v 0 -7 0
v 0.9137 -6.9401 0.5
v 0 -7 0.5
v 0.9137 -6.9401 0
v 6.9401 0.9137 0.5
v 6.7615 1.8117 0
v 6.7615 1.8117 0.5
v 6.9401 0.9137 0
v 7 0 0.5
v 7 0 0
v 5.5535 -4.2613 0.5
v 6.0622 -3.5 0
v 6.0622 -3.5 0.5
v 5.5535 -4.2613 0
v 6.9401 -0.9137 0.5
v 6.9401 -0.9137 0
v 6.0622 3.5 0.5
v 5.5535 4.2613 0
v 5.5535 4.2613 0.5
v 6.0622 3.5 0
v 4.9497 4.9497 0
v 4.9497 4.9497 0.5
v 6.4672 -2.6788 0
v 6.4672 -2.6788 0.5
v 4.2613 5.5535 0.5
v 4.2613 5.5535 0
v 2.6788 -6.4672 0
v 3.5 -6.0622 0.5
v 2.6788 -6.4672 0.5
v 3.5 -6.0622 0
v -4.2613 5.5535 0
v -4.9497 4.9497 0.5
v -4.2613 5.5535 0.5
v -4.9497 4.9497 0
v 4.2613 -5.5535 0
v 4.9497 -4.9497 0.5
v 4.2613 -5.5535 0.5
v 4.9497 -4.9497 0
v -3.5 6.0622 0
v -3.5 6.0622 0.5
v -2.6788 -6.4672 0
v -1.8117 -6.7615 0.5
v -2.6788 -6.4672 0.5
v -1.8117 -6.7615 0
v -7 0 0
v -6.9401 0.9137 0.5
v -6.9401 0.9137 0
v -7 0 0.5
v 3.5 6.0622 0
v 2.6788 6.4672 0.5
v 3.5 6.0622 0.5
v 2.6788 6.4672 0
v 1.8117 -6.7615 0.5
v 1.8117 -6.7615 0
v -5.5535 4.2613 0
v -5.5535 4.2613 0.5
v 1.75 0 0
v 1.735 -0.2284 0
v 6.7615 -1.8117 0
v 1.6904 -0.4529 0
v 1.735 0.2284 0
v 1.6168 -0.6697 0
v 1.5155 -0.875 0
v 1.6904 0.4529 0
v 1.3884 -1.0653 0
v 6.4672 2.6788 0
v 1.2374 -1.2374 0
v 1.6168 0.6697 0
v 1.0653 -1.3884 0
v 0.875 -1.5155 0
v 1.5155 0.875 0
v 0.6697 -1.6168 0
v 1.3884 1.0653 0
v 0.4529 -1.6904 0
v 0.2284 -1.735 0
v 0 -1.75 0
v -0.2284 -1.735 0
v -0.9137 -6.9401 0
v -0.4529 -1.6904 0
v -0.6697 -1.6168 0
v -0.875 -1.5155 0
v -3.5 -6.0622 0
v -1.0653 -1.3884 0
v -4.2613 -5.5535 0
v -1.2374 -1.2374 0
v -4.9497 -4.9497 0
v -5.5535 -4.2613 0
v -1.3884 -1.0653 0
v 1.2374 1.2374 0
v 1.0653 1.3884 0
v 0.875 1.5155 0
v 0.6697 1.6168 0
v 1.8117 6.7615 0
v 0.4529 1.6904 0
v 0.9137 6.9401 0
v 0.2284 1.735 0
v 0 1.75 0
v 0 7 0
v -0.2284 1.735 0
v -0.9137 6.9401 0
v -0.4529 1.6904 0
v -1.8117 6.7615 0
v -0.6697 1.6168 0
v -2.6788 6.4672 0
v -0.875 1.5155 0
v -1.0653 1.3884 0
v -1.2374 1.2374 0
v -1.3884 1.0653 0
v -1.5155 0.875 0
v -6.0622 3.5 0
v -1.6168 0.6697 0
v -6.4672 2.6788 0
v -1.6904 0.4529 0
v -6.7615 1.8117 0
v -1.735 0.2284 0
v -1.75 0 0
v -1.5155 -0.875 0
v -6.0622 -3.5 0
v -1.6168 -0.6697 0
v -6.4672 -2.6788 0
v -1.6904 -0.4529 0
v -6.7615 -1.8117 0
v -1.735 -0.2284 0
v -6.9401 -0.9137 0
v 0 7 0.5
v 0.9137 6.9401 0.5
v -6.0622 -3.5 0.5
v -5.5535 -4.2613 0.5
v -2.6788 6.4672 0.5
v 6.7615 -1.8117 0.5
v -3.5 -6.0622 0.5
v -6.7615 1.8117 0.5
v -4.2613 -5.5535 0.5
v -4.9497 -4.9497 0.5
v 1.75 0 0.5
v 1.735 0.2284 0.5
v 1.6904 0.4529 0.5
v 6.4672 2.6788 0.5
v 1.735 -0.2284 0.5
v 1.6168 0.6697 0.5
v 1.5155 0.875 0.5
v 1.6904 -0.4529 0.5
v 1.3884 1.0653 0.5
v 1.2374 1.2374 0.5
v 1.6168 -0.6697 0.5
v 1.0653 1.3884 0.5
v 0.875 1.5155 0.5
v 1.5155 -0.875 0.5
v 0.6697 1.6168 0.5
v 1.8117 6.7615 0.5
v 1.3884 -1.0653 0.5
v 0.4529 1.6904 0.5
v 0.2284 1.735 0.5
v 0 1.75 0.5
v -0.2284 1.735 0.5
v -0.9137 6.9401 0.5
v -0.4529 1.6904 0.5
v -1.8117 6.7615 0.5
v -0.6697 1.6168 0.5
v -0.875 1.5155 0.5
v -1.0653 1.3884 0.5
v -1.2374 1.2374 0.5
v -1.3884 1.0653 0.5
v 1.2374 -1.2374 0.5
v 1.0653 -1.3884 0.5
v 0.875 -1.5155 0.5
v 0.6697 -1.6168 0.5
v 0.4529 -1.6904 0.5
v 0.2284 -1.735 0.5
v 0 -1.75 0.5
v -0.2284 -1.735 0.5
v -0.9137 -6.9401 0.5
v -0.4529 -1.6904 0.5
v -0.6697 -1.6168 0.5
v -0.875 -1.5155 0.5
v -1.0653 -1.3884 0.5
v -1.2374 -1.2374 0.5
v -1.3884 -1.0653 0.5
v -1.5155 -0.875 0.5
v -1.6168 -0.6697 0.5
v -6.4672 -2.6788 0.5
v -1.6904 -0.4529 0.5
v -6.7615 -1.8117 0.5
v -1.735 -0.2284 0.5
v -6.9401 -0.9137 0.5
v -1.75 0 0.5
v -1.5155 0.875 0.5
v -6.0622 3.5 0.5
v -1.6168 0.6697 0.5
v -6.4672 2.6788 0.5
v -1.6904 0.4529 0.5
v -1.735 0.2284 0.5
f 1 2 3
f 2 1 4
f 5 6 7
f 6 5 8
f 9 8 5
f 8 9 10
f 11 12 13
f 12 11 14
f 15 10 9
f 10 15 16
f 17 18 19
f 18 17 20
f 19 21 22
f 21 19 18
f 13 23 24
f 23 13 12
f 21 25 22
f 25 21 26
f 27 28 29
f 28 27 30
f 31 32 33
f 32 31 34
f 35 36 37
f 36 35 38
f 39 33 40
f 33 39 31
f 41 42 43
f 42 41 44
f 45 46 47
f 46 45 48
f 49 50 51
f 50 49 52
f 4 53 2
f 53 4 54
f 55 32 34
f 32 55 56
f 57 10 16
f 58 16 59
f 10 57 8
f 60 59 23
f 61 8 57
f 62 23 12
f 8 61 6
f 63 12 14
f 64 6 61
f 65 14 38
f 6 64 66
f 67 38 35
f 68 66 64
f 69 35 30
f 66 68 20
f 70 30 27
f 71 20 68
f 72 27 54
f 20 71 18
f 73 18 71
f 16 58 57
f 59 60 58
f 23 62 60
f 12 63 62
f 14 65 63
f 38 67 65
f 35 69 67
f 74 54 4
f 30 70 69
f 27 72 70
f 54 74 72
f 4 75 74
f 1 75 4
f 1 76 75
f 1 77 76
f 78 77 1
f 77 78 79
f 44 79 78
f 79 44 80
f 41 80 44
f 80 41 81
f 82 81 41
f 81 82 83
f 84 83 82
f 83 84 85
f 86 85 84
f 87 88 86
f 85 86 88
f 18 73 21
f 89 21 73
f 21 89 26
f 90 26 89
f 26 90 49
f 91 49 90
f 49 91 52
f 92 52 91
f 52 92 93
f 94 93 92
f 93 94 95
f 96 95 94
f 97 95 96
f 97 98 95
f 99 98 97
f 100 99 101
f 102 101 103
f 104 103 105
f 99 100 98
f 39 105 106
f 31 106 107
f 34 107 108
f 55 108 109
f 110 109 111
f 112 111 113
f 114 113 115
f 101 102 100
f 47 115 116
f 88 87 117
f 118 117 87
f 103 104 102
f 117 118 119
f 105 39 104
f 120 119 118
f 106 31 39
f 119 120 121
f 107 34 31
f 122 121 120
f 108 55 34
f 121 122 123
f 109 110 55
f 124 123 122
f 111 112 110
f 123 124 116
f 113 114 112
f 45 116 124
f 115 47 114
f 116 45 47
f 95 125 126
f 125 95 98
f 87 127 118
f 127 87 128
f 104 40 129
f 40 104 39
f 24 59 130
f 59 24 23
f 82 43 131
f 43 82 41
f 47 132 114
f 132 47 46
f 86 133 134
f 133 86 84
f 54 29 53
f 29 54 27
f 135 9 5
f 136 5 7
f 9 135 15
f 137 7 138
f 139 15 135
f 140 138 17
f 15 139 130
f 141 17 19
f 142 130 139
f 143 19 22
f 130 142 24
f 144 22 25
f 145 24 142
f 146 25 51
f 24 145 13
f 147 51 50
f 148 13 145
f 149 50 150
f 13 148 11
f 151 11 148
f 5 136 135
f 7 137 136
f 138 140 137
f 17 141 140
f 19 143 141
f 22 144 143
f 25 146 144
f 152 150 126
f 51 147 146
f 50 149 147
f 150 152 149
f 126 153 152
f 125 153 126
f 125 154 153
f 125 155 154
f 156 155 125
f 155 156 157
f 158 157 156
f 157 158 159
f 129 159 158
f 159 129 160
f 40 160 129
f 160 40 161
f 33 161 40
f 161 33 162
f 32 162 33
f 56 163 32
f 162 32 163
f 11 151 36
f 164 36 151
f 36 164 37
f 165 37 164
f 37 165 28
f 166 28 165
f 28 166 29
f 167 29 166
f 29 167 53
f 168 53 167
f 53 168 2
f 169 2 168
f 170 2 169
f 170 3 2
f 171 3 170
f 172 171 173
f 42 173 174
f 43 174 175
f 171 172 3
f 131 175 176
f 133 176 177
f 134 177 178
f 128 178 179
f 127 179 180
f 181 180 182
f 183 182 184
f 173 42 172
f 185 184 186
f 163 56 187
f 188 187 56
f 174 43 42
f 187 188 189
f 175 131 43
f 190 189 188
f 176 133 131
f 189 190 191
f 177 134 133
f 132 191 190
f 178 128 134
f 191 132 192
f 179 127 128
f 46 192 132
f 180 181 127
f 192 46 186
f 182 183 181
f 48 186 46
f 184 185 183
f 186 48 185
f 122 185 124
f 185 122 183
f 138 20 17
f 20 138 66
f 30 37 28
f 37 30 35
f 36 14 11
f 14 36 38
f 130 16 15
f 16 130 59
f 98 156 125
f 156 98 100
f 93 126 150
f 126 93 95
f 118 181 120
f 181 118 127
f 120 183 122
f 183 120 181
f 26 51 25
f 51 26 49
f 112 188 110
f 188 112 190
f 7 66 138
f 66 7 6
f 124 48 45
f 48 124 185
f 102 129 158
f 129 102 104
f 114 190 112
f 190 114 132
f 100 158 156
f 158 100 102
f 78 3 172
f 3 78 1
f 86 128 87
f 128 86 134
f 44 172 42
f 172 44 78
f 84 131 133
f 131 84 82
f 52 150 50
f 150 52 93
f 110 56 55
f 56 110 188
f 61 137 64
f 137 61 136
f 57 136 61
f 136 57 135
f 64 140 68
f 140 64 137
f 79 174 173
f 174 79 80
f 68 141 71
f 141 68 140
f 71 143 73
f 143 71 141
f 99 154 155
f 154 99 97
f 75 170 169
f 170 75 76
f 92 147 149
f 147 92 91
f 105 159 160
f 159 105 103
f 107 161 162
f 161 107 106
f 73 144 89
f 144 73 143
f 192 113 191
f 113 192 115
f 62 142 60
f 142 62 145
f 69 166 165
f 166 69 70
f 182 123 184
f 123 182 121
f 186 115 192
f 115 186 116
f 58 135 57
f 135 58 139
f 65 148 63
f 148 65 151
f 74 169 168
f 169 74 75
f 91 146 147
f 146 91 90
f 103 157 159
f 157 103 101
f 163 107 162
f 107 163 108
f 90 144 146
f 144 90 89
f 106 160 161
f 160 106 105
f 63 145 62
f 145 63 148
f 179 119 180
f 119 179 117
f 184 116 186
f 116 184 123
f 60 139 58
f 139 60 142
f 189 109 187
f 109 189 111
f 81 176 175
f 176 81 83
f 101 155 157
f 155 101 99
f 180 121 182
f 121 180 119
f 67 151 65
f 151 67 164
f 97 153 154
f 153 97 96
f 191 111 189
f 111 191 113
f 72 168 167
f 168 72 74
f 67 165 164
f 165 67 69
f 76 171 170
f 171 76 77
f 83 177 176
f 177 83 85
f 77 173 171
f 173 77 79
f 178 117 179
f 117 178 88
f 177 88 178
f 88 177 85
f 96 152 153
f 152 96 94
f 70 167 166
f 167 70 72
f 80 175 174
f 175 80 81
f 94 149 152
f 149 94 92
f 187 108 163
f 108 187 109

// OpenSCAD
// file: parameters.scad
// =============================================================================
// Gen-BQ — nightly 2026-10-07 (physics_scorer, honest magpylib watts)
// Smooth-torque 8-pole / 9-coil line (winding factor 0.945, much lower cogging than 6-coil) with tonight's gap levers: flush 5.00 mm through-pocket seat, 0.8 mm bobbin lip (wider 35–70 mm sectors) and a ±8 mm Ø5 map at R44/52/60, on the Gen-BN Ø138 × 4.76 mm steel. Improves Gen-BN 4.166 W but 9 coils still lose to 6 coils under the wire budget.
// Clocking 0 deg (magnets N facing S) + D-flat keyed bore + index notch + flip-symmetric hole map.
// Windable 2-piece bobbin; turns = physics_scorer turns_fit; copper only between flanges.
// Steel back-iron: 2× Ø138 × 4.76 mm (3/16") mild-steel discs (steel_backiron_disc.dxf); magnets sit ON the steel
// (through-pockets) -> score with --back-iron.
// =============================================================================
topology            = "dual_rotor";

// --- Wire / winding (physics_scorer winding-fit) -------------------------------
wire_awg            = 26;
wire_od             = 0.45;     // insulated OD mm (bare 0.405)
fill_realistic      = 0.65;     // insulated-wire area / window (DENSE layered wind with a jig; scorer cap 0.65)
turns               = 486;       // = physics_scorer turns_fit (do NOT raise)
coil_former_type    = "bobbin";
coil_core_inset     = 12.60;     // radial copper build: hub = copper boundary inset by this
wind_build_axial    = 0.0;      // nothing proud of the flanges
wind_build_radial   = 0.0;

// --- Bobbin (base + lid) ---------------------------------------------------------
coil_id_r           = 35.00;    // copper boundary sector
coil_od_r           = 70.00;
span_deg            = 34.6;    // = pitch - 2*asin((wall+0.85)/coil_id_r) -> >=1.2 mm stator web
former_web          = 9.45;     // copper height between flanges (TALL copper: steel keeps Bz up)
flange_t            = 0.80;     // >= 0.8 mm FDM wall rule (tall winds push on the flanges)
wall                = 0.80;     // flange lip beyond copper
former_bare_h       = former_web + 2 * flange_t;
coil_envelope_h     = former_bare_h + 2 * wind_build_axial;
tab_w               = 7.0;
tab_len             = 7.0;
tab_h               = former_bare_h / 2;
pin_d               = 1.9;      // 1.75 mm filament locating pin
coil_mount_r        = coil_od_r + 0.2 + 4.0;
lead_y              = 1.6;
lead_slot_w         = 0.9;
lead_groove_d       = 0.6;

// --- Gap -------------------------------------------------------------------------
run_clear           = 0.50;     // rotor face -> flange
gap_spacer_h        = run_clear + wind_build_axial;
m2m                 = coil_envelope_h + 2 * run_clear;   // rotor face to rotor face (= gap_sleeve length)

// --- Stator ----------------------------------------------------------------------
coil_stations       = 9;
bay_clear           = 0.25;
stator_thick        = former_bare_h;                        // bobbins flush both faces
stator_od           = 160.0;
shaft_clear_stator  = 14.0;     // stator is static; gap sleeve OD 12 spins inside

// --- Rotor(s) --------------------------------------------------------------------
magnet_Br           = 1.43;     // N52
magnet_d_large      = 20.0;
magnet_h_large      = 5.0;      // one O20x5 per pocket
magnet_h_small      = 5.0;      // one O5x5 per pocket
halbach_magnetisation = "diametric"; // O5x5 assist magnets MUST be DIAMETRICALLY magnetised (tangential)
rotor_b_same_axis   = true;     // same-index magnets share one axis: N faces S across the gap
large_pocket_d      = 20.3;
small_pocket_d      = 5.3;
pocket_h            = 5.00;     // THROUGH the carrier: magnet back face sits on the steel disc (FLUSH seat: carrier = magnet height, magnet face level with the rotor face)
large_n             = 8;
R_large             = 52.0;
R_small_inner       = 44.0;
R_small_mid         = 52.0;
R_small_outer       = 60.0;
small_r_list        = [R_small_inner, R_small_mid, R_small_outer];   // O5 pockets between poles
carrier_od          = 138.0;
carrier_thick       = pocket_h;
hub_h               = 12.0;     // > steel_t + insert: radial set-screw clears the steel
hub_od              = 24.0;     // slim hub so the M4 brace rods fit at R~18 inside the coil ring
hub_insert_d        = 4.0;      // M3 heat-set insert, radial, bears on the D-flat
rotor_b_offset_deg  = 0.0;      // CLOCKING: magnets directly opposite
shaft_key           = "dflat";
dflat_depth         = 0.5;      // 8 mm shaft with 0.5 mm flat (7.5 across flat)
index_notch_d       = 3.0;

// --- Steel back-iron (buyable laser-cut) -------------------------------------------
steel_t             = 4.76;      // mild steel thickness (image method ignores it; sized from steel_flux.py so the return path stays well below saturation)
steel_center_hole   = 26.0;     // slips over the rotor hub (OD 24)
steel_od            = carrier_od;   // steel disc OD = rotor carrier OD

// --- Modular MAX interface ----------------------------------------------------------
shaft_bore          = 8.35;
dflat_x             = 4.0 - dflat_depth + (shaft_bore - 8.0) / 2;
bearing_d           = 21.85;
bearing_h           = 7.2;
m3_clear            = 3.5;
bolt_r_inner        = 30.0;     // M3 steel-disc clamp bolts (inside the magnet ring)
bolt_n_inner        = 4;
bolt_inner_angles   = [0, 90, 180, 270];
bolt_r_outer        = 65.0;     // M3 steel-disc clamp bolts (outside the magnet ring)
bolt_outer_angles   = [45, 135, 225, 315];
flange_bolt_r       = 75.0;     // frame rods: OUTSIDE the rotor OD (rotors spin inside them)
flange_bolt_n       = 9;
flange_bolt_offset  = 20.00;    // between coil stations -> never cuts a lead groove/tab
brace_r             = 18.0;
brace_d             = 4.3;      // temporary M4 jack rods (assembly only)
brace_n             = 4;
brace_angles        = [45, 135, 225, 315];          // flip-symmetric

spacer_pad_od       = 14.0;
spacer_pad_id       = m3_clear;
endbell_od          = 160.0;
endbell_thick       = 8.0;
endbell_shaft_clear = 10.0;
collar_h            = 10.0;
standoff_od         = 9.0;
frame_standoff_h    = run_clear + carrier_thick + hub_h + collar_h + 2.0;
sleeve_od           = 12.0;
plate_max_mm        = 410;

$fn = 64;
// main file
// Gen-BQ — assembly gap shim, h = run_clear (rotor face -> flange); copper is inside the flanges
include <parameters.scad>;
$fn = 48;
difference() {
    cylinder(d=spacer_pad_od, h=gap_spacer_h);
    translate([0, 0, -0.1]) cylinder(d=spacer_pad_id, h=gap_spacer_h + 0.2);
}
